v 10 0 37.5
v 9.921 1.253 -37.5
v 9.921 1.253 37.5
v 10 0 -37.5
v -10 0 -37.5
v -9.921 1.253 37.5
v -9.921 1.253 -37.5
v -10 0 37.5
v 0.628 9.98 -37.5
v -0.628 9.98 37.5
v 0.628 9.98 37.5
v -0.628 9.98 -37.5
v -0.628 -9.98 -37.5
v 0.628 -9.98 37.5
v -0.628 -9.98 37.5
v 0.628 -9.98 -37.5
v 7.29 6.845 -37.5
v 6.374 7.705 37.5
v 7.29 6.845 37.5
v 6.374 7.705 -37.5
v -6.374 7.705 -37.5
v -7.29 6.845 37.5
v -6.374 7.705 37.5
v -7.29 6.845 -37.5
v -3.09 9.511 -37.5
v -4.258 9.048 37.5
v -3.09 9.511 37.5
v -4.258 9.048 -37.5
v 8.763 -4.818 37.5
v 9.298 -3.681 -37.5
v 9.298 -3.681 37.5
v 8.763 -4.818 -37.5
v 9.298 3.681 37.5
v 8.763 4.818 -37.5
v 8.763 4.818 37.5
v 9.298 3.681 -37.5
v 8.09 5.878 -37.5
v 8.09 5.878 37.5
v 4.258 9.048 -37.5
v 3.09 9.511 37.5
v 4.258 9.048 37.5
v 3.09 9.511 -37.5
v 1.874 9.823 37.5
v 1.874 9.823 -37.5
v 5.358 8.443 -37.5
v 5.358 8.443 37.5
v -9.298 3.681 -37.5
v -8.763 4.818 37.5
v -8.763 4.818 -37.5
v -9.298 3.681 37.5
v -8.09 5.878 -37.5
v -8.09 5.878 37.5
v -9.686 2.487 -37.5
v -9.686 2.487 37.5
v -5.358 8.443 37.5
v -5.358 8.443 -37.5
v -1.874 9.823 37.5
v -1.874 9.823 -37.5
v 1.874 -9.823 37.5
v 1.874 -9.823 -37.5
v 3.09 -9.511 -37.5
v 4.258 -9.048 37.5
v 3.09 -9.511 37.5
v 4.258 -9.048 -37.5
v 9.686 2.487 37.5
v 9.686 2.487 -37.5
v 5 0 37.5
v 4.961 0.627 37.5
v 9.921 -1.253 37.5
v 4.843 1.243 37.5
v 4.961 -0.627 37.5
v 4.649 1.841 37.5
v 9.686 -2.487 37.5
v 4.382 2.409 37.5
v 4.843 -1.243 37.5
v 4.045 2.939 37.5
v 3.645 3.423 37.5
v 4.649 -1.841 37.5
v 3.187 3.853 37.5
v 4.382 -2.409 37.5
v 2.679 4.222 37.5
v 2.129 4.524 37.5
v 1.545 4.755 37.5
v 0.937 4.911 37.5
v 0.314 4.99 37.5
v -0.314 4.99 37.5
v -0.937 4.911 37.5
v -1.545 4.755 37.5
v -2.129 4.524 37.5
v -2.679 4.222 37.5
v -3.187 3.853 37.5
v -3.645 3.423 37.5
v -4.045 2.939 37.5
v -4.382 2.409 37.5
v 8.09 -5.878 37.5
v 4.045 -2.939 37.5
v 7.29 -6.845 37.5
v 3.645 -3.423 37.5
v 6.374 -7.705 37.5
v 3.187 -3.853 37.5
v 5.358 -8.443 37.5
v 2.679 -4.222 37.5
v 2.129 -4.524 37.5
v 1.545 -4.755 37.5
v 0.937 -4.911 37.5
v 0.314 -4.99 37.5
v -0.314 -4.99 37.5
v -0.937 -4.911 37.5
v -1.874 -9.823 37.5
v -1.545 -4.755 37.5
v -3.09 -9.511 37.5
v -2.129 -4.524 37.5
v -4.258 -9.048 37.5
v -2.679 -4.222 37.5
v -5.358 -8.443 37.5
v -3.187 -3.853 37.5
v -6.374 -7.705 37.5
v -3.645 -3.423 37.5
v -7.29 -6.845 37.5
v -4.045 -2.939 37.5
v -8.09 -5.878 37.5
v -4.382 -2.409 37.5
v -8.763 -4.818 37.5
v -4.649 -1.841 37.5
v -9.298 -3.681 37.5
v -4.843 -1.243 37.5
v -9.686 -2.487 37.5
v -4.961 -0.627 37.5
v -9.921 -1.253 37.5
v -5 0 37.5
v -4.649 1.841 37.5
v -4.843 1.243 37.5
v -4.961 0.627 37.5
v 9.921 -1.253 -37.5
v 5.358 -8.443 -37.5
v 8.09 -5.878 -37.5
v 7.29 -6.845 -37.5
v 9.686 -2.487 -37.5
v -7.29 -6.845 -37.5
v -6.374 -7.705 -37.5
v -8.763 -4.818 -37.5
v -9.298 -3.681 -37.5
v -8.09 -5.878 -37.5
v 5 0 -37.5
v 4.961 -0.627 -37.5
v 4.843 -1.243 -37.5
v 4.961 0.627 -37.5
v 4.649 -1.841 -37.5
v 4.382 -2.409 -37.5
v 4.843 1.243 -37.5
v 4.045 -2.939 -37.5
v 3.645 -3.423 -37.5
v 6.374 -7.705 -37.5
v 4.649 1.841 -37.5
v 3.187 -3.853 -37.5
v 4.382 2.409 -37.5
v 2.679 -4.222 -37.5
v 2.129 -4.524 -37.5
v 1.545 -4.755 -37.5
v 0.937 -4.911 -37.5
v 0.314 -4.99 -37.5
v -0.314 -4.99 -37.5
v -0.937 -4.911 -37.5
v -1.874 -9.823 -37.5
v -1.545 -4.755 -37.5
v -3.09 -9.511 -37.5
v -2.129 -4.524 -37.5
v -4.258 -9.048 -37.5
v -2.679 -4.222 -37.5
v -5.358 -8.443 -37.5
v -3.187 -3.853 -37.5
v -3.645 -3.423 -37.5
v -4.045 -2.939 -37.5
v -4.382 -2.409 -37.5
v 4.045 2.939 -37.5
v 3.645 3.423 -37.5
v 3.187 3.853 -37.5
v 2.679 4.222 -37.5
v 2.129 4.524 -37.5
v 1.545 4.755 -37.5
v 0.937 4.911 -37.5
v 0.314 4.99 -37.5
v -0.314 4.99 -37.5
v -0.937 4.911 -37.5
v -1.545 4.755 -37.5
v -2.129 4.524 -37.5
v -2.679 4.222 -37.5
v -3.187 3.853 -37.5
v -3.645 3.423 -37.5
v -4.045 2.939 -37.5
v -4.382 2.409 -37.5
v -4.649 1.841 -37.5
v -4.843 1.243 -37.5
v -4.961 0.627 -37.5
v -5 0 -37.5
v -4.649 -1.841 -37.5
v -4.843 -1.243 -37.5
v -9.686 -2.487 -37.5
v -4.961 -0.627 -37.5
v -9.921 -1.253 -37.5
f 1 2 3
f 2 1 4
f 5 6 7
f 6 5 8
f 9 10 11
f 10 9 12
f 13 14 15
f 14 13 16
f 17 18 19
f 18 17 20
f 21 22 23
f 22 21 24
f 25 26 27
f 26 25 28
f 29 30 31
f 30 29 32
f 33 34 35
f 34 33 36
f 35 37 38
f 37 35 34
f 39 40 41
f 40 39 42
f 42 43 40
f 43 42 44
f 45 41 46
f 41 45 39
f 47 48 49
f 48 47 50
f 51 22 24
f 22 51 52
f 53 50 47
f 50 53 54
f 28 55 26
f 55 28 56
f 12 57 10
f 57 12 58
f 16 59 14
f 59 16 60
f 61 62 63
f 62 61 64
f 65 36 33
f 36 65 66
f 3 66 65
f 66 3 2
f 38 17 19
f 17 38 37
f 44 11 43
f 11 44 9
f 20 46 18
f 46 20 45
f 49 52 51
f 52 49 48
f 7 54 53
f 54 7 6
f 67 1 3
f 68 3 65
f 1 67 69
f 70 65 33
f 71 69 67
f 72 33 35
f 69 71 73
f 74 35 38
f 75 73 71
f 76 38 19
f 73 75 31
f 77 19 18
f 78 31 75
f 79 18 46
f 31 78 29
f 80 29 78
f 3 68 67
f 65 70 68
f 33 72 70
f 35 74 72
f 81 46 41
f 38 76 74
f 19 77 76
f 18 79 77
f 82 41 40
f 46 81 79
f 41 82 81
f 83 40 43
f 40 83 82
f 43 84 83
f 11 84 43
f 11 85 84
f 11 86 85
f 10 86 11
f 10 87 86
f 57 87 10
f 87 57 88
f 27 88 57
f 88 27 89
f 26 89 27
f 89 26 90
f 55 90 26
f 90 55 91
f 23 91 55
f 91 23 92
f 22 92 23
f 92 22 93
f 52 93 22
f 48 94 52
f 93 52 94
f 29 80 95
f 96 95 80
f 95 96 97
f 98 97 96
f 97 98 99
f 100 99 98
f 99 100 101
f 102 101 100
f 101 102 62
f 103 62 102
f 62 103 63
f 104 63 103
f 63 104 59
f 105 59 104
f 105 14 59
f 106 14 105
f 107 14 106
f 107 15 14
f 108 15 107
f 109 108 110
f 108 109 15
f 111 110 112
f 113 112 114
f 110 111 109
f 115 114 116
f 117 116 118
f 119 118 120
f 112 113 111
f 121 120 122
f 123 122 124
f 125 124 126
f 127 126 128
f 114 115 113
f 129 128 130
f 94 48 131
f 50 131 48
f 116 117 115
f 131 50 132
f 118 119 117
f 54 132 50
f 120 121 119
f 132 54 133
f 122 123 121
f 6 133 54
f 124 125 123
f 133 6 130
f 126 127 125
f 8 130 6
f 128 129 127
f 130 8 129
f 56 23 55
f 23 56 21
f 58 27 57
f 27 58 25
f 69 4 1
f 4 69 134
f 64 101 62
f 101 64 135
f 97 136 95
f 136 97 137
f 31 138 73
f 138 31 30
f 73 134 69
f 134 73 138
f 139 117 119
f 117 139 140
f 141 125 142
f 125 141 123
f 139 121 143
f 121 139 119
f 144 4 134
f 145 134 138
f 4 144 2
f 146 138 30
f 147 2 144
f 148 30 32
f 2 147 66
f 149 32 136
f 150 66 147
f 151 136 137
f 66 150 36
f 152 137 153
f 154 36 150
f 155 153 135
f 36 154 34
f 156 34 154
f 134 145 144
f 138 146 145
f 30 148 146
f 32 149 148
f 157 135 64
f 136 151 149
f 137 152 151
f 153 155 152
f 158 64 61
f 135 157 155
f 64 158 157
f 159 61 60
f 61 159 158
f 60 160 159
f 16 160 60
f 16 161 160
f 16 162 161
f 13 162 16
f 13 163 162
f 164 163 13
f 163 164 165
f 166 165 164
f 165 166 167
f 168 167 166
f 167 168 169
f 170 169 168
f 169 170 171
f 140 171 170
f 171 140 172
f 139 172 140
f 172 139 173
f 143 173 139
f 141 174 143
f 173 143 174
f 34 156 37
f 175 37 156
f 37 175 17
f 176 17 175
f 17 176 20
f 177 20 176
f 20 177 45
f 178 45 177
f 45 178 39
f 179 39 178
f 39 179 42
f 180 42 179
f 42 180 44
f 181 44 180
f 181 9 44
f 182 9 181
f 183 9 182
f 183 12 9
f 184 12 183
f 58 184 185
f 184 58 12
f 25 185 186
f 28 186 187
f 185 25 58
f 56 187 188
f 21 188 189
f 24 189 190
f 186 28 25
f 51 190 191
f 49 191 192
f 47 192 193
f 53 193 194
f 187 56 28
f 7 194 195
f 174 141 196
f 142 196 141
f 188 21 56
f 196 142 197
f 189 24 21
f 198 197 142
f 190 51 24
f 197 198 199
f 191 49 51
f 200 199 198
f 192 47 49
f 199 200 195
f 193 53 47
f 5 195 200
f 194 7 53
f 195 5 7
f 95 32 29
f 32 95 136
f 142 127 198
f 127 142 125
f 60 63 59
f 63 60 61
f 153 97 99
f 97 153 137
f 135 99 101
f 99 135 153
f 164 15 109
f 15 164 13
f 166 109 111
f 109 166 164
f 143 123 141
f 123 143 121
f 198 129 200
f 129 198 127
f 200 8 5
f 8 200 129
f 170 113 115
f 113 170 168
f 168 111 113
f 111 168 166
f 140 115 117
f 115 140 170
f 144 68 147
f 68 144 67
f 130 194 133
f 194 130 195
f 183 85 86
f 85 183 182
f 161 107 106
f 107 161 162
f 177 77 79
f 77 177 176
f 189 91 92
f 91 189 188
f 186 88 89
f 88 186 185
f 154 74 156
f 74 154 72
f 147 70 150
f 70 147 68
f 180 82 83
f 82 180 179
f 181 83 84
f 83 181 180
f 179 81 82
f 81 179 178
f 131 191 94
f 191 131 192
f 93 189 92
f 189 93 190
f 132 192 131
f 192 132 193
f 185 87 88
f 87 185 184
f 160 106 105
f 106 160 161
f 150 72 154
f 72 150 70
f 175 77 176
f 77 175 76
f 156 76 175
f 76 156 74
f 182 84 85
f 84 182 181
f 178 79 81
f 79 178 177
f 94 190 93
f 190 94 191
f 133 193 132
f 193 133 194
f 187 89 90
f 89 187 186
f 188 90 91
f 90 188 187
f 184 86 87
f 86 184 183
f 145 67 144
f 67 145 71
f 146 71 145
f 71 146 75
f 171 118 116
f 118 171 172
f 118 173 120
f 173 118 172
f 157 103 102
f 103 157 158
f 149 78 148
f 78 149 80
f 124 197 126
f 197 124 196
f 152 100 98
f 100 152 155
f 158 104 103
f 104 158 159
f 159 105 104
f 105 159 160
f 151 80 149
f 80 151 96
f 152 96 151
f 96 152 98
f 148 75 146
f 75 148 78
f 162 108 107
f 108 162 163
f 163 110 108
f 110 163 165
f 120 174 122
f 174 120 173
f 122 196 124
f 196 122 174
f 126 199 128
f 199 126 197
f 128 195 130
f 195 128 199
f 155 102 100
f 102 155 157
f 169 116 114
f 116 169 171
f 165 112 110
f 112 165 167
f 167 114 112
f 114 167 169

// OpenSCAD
$fn = 50;


difference() {
	union() {
		translate(v = [0, 0, -37.5000000000]) {
			cylinder(h = 75, r = 10.0000000000);
		}
	}
	union() {
		translate(v = [0, 0, -100.0000000000]) {
			cylinder(h = 200, r = 5.0000000000);
		}
	}
}
